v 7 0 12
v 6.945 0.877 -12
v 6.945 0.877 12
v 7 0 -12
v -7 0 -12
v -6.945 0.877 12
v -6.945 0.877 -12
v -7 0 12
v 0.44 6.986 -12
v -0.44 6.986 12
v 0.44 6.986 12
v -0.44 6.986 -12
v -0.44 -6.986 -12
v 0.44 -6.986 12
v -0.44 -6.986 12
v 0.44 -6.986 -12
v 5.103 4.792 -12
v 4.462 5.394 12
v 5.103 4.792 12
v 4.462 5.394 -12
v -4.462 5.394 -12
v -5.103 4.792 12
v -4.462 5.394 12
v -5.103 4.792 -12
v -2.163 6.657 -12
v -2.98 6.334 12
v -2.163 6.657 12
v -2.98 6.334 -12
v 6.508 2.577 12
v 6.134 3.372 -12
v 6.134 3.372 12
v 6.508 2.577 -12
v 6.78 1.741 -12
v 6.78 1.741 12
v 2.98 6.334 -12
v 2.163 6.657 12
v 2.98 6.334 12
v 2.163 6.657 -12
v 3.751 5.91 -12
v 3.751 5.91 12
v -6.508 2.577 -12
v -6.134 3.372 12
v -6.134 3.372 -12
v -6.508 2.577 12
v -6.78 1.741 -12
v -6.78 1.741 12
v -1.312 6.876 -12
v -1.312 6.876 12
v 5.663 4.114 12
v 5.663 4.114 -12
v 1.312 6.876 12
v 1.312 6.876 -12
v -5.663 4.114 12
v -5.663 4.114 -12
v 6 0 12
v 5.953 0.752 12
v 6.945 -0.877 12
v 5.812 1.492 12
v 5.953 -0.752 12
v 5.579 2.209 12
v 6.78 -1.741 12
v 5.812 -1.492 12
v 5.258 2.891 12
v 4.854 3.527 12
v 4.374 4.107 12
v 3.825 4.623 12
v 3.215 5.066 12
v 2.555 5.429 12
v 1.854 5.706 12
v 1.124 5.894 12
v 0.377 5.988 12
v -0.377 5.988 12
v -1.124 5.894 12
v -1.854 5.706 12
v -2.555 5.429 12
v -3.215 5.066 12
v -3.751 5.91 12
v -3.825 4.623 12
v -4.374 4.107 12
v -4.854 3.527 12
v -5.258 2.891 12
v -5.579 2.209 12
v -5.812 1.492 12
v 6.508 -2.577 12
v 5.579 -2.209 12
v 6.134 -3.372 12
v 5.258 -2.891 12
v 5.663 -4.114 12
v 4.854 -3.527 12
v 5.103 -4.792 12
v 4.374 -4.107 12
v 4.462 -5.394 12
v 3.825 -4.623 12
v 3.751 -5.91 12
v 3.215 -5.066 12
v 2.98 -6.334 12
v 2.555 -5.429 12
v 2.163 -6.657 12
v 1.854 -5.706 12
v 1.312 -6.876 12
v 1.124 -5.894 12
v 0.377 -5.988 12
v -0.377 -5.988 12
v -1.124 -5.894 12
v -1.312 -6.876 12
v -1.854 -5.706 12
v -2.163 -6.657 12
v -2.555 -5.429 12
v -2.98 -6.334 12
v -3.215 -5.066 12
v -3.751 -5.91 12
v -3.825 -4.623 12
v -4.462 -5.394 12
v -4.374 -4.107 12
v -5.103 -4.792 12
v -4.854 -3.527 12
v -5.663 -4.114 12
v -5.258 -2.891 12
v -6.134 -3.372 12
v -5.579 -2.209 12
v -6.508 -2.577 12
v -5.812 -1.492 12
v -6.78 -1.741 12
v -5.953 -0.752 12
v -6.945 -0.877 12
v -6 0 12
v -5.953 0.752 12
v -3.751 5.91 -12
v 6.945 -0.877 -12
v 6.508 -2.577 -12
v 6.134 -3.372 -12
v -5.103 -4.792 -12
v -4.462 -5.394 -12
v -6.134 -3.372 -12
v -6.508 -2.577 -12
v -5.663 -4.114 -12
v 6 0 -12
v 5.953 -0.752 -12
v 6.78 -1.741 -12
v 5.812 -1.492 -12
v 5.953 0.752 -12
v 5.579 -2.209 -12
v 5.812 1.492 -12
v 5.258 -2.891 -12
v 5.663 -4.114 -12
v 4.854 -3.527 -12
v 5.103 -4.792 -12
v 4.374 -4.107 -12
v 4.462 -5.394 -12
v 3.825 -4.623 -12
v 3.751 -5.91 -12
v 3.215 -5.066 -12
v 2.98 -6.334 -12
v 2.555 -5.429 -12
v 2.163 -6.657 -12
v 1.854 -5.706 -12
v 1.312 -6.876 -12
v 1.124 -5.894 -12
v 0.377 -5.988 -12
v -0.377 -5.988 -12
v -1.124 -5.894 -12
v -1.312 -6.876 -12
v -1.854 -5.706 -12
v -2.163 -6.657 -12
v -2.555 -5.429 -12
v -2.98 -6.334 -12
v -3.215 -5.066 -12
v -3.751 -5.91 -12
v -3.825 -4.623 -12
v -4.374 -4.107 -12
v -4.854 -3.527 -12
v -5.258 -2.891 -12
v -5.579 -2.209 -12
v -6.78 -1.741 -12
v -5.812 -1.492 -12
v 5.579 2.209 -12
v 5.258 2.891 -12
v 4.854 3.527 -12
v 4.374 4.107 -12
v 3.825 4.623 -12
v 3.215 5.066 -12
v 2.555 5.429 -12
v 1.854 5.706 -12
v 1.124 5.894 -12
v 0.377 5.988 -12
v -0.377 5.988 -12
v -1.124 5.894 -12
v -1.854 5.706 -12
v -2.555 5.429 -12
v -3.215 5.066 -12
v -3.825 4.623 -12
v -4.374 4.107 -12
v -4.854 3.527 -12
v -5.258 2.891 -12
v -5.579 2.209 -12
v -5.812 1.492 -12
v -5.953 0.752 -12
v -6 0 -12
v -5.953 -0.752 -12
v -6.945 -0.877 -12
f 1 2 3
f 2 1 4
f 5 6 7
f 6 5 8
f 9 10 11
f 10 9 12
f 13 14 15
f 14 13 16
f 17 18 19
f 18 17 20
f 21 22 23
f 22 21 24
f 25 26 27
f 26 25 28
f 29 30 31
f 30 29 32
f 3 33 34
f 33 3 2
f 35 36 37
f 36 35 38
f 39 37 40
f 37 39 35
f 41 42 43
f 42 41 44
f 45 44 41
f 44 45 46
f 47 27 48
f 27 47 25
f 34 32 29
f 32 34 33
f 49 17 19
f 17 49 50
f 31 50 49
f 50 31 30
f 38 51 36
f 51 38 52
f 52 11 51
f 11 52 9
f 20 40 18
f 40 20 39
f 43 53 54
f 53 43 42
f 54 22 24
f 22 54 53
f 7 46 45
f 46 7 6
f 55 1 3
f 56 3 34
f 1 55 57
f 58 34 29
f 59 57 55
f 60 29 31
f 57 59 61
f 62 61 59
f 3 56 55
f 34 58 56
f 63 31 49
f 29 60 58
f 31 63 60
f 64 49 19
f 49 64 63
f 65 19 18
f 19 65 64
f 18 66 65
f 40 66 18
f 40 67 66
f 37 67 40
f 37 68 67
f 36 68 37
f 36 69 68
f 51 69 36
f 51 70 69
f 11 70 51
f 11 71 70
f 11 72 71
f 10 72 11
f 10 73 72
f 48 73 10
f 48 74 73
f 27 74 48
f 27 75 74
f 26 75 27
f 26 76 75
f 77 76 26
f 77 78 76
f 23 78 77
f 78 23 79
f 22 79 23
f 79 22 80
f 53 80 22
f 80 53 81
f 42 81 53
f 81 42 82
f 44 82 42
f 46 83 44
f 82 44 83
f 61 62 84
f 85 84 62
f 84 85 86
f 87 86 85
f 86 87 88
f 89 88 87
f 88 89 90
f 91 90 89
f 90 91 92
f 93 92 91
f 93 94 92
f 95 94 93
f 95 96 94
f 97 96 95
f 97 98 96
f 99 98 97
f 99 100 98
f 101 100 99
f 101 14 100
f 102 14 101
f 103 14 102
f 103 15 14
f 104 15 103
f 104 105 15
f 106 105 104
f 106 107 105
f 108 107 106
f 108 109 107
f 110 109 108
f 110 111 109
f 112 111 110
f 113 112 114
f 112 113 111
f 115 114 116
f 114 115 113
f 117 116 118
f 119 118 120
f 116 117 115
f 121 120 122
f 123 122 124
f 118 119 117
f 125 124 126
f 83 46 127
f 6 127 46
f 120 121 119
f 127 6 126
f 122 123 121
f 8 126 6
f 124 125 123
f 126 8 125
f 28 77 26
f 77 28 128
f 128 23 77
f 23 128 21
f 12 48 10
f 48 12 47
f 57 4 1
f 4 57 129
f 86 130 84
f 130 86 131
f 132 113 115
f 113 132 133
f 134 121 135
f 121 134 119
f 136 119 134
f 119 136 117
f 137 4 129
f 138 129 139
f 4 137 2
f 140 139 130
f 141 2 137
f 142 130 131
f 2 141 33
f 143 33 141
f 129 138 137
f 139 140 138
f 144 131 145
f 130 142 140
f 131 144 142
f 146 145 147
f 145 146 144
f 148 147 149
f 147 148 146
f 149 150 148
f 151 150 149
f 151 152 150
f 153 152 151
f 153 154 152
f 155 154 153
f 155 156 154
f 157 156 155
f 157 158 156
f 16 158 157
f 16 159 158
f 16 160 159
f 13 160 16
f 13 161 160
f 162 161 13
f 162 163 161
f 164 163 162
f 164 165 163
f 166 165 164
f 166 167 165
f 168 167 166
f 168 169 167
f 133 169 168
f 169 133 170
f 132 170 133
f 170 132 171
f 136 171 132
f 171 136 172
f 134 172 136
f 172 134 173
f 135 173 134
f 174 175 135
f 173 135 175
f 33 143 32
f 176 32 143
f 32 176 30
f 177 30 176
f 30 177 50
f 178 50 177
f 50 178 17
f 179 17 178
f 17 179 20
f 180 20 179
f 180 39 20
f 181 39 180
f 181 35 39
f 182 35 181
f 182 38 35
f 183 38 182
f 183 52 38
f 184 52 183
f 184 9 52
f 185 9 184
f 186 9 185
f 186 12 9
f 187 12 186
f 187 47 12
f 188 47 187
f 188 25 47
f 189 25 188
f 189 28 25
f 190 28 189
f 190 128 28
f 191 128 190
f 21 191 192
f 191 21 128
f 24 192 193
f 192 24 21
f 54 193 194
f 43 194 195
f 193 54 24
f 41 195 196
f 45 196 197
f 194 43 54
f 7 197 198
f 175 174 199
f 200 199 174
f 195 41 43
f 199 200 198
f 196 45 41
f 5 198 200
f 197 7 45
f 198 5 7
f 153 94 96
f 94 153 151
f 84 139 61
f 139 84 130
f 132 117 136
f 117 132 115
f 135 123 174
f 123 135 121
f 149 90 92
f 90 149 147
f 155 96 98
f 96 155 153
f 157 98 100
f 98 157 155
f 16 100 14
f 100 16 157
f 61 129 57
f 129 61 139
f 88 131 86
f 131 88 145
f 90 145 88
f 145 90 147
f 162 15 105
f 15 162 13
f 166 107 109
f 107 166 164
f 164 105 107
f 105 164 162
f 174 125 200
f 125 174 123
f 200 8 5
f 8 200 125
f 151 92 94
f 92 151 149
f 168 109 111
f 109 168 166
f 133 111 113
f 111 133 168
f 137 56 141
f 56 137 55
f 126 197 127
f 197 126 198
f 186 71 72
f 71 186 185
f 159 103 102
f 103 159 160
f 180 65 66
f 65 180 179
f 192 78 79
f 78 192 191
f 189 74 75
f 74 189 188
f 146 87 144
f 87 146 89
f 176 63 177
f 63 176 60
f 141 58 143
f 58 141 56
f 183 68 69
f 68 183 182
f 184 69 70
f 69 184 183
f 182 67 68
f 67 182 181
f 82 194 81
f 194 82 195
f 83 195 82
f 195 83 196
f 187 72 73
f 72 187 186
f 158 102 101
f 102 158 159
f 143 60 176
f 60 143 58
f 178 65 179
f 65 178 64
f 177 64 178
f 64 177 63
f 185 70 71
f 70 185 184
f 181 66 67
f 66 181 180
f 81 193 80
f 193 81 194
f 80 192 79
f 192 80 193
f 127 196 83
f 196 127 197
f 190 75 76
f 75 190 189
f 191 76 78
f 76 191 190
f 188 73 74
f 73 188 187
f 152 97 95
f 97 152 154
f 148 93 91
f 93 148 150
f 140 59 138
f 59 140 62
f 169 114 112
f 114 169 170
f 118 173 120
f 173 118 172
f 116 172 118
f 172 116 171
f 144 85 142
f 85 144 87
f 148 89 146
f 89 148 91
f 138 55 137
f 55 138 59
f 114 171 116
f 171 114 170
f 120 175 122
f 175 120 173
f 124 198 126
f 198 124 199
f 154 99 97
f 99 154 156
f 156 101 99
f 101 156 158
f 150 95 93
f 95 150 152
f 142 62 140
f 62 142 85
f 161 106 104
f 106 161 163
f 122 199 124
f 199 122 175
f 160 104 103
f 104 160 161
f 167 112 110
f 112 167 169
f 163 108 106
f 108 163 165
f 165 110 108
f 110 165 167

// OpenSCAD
$fn = 50;


difference() {
	union() {
		translate(v = [0, 0, -12.0000000000]) {
			cylinder(h = 24, r = 7.0000000000);
		}
	}
	union() {
		translate(v = [0, 0, -100.0000000000]) {
			cylinder(h = 200, r = 6);
		}
	}
}
